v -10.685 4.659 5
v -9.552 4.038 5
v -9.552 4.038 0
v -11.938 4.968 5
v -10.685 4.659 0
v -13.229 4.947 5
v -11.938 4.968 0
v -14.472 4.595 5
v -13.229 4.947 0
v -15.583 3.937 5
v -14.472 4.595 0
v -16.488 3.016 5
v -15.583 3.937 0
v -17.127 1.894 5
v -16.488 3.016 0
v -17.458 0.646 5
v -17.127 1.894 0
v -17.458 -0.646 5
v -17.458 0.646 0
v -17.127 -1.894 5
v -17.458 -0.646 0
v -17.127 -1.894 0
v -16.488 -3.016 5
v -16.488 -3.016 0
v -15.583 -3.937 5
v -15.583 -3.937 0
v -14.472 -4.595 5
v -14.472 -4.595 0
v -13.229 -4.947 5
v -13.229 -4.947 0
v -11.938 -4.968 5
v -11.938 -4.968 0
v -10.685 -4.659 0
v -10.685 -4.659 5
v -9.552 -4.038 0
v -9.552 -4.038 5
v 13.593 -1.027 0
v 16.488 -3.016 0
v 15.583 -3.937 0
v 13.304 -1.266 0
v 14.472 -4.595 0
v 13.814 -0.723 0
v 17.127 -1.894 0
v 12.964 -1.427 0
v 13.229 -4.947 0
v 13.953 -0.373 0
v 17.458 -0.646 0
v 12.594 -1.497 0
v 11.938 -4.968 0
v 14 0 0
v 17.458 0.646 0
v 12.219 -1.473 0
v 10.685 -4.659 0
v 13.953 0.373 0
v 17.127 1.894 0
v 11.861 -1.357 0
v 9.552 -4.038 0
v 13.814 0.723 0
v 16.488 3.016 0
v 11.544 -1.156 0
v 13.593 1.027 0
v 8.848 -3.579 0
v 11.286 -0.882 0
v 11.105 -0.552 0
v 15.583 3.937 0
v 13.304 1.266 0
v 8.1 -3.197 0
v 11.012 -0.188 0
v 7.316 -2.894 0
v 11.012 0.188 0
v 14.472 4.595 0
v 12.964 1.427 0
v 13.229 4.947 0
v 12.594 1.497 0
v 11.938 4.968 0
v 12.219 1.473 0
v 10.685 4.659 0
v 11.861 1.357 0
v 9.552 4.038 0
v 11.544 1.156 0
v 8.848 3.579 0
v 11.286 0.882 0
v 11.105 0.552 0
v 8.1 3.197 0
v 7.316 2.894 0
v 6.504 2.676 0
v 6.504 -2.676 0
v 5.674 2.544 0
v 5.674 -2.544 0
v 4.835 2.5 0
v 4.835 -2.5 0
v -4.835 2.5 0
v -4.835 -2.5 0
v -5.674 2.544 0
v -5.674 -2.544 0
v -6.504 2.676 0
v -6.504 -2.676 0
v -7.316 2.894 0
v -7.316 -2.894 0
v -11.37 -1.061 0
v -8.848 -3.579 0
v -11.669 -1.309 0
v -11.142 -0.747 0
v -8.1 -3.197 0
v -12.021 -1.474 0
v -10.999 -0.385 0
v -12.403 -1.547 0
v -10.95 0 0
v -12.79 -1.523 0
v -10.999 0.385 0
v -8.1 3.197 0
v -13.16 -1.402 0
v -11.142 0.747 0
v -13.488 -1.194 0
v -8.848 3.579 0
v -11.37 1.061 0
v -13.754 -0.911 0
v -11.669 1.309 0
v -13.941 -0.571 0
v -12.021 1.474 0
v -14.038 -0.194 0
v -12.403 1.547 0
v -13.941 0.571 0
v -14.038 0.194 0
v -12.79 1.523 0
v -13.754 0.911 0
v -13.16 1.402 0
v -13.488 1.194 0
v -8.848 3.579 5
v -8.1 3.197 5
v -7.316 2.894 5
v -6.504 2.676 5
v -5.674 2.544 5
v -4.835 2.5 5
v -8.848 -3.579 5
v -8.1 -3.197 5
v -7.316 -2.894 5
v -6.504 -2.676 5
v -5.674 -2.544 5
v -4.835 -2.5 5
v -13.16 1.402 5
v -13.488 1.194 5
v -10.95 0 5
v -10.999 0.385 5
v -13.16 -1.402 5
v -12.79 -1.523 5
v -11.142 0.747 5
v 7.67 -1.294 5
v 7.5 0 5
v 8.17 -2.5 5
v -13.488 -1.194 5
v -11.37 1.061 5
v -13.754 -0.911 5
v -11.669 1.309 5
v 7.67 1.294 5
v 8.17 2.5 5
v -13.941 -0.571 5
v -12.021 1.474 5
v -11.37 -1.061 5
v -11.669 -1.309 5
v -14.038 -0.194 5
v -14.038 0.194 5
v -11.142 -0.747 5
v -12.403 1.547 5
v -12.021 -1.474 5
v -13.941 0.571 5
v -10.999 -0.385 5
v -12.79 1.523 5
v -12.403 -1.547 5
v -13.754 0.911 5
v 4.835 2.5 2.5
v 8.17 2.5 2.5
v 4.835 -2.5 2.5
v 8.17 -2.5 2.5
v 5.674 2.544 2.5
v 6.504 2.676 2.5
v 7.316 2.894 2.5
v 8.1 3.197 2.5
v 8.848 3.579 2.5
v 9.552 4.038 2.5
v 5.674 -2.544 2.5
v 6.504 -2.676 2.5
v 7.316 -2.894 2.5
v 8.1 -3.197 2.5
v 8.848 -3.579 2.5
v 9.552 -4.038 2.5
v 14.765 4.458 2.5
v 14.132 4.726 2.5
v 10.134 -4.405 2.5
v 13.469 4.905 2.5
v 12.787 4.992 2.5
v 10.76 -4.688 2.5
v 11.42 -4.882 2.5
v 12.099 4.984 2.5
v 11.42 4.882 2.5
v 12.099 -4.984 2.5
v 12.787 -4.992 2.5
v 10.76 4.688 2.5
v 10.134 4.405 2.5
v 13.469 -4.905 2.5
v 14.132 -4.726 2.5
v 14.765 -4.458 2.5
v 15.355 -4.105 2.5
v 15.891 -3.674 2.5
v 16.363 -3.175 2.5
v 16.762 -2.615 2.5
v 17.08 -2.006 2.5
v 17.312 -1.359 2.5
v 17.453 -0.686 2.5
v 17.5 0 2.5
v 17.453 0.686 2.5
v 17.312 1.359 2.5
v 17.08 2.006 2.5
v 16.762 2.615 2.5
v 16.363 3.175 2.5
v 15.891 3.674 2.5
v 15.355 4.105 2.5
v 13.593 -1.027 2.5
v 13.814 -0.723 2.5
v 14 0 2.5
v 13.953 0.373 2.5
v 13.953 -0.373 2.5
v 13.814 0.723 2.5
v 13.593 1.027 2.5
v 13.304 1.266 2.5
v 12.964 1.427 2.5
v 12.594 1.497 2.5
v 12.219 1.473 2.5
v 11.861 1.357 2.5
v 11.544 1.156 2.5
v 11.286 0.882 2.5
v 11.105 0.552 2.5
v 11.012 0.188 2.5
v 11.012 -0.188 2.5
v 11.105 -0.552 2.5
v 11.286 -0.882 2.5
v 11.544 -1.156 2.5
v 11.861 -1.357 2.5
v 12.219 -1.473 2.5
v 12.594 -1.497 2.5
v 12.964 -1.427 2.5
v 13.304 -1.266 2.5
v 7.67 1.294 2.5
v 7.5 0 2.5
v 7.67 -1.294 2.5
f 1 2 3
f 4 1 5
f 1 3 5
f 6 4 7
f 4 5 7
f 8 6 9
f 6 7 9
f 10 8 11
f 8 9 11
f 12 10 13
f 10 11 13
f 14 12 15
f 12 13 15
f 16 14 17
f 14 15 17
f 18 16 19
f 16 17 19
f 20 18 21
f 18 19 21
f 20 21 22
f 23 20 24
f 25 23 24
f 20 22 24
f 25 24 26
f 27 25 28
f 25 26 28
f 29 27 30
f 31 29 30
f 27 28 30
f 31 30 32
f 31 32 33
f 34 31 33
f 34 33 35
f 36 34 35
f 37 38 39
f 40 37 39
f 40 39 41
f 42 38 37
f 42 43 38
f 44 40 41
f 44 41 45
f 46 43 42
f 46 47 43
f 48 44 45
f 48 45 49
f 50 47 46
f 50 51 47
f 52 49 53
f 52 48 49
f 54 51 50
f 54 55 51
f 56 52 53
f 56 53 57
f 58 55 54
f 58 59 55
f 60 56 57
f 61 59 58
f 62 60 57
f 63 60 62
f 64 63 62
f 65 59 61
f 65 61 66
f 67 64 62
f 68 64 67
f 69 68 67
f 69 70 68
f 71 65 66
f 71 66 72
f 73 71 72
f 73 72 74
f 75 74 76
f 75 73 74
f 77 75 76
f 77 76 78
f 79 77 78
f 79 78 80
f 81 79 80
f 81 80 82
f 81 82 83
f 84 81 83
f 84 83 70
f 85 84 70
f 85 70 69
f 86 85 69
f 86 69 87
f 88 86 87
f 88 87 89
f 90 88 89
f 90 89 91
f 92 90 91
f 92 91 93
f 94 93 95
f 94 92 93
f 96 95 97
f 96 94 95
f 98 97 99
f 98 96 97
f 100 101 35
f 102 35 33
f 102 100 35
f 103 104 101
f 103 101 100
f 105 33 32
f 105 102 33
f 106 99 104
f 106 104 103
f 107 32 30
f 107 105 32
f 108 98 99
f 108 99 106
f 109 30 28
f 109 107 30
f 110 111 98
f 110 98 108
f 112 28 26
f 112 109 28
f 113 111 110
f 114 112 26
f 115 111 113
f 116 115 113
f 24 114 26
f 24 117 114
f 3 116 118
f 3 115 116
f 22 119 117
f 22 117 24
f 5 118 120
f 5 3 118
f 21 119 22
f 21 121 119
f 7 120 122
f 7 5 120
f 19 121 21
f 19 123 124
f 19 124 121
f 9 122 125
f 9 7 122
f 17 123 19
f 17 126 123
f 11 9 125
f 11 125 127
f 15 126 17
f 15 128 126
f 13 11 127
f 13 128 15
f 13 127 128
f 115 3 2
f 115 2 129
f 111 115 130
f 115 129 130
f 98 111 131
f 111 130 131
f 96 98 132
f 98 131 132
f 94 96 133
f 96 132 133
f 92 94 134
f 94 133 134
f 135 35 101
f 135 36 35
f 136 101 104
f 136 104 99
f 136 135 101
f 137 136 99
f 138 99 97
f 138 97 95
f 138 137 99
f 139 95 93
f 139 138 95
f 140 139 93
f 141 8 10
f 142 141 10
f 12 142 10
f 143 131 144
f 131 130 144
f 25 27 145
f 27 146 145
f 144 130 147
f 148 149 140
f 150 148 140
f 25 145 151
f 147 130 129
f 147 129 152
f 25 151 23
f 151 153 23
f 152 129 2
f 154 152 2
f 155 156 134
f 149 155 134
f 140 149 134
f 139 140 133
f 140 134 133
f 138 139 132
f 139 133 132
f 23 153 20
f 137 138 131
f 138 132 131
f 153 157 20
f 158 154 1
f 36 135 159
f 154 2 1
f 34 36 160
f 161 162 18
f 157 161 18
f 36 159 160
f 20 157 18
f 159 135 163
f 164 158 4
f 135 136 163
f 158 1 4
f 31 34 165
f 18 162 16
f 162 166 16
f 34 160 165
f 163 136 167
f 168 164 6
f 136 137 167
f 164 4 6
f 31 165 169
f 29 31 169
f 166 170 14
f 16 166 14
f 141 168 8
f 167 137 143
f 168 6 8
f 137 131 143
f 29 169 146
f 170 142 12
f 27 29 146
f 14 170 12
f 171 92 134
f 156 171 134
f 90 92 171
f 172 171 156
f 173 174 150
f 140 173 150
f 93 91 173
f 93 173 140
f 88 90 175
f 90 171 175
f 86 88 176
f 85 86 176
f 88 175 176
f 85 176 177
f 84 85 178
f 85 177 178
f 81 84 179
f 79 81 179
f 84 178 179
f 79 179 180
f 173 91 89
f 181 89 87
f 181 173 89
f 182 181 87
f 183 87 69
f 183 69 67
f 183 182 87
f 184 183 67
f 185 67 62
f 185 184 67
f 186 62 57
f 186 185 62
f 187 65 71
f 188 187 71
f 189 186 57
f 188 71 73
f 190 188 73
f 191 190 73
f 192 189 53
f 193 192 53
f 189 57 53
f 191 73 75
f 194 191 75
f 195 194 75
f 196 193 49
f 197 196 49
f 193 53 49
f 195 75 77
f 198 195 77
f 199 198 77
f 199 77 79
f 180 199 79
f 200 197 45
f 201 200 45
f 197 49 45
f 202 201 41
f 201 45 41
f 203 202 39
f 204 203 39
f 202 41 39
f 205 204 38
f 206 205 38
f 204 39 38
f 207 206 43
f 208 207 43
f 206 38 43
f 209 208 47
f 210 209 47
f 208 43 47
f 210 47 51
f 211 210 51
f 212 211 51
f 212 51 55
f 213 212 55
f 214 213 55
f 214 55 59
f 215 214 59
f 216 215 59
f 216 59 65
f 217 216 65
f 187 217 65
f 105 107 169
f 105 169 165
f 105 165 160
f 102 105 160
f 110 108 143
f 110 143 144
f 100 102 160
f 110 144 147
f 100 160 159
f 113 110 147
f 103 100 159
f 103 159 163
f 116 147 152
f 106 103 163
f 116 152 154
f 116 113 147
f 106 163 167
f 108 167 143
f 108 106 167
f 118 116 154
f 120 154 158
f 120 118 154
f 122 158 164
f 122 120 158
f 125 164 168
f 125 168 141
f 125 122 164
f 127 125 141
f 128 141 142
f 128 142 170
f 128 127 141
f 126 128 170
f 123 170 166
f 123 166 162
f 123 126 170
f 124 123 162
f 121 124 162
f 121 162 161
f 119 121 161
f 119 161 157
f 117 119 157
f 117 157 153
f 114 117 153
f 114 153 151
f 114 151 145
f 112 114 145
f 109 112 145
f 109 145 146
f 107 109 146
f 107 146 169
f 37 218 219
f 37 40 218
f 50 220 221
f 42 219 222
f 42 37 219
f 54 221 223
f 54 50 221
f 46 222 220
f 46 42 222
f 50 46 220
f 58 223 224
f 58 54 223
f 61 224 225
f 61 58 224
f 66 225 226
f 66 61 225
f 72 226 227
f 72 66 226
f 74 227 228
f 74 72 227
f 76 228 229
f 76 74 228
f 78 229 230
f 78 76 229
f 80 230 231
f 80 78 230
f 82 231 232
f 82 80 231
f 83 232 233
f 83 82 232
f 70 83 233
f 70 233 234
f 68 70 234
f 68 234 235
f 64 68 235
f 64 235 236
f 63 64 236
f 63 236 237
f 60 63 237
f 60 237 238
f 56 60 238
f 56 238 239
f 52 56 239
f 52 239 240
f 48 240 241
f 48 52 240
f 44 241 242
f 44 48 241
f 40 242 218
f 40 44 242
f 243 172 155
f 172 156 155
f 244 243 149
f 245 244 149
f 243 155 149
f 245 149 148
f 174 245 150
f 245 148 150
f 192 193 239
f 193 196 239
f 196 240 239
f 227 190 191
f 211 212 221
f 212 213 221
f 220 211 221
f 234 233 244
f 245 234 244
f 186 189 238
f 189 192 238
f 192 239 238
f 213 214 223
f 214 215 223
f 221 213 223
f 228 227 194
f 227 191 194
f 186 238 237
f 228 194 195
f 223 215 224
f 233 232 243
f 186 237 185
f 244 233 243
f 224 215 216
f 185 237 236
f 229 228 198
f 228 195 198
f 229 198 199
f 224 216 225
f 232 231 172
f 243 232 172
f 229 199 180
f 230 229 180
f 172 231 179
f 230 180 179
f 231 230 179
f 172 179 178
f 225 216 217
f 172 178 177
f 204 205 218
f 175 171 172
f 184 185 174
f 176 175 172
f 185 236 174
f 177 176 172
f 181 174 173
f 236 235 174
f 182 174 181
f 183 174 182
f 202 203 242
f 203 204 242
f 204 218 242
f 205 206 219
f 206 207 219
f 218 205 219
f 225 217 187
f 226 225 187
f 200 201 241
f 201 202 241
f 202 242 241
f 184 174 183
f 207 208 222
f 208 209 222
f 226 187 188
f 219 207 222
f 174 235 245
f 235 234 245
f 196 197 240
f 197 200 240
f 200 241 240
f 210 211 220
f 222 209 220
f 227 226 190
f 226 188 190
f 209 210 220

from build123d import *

# Parameters (mm, degrees)
SKETCH_R      = 1.55
SKETCH_R_2    = 1.5
EXTRUDE_DEPTH = 5
SKETCH001_R   = 5
POCKET_DEPTH  = 2.5
FILLET_R      = 8


with BuildPart() as part:
    # Sketch → Extrude (new body)
    with BuildSketch(Plane.XY):
        with BuildLine():
            ThreePointArc((-8.169873, 2.5), (-17.5, 0), (-8.169873, -2.5))
            Line((8.169873, -2.5), (-8.169873, -2.5))
            ThreePointArc((8.169873, -2.5), (17.5, 0), (8.169873, 2.5))
            Line((-8.169873, 2.5), (8.169873, 2.5))
        make_face()
        with Locations((-12.5, 0)):
            Circle(SKETCH_R, mode=Mode.SUBTRACT)
        with Locations((12.5, 0)):
            Circle(SKETCH_R_2, mode=Mode.SUBTRACT)
    extrude(amount=EXTRUDE_DEPTH)

    # Sketch001 → Pocket (cut)
    with BuildSketch(Plane.XY.offset(5)):
        with Locations((12.5, 0)):
            Circle(SKETCH001_R)
    extrude(amount=-POCKET_DEPTH, mode=Mode.SUBTRACT)

    # Fillet
    fillet_edges = [part.edges().sort_by_distance(p)[0] for p in [
        (-8.169873, 2.5, 2.5),
        (-8.169873, -2.5, 2.5),
        (8.169873, 2.5, 1.25),
        (8.169873, -2.5, 1.25),
    ]]
    fillet(fillet_edges, radius=FILLET_R)


solid = part.part
